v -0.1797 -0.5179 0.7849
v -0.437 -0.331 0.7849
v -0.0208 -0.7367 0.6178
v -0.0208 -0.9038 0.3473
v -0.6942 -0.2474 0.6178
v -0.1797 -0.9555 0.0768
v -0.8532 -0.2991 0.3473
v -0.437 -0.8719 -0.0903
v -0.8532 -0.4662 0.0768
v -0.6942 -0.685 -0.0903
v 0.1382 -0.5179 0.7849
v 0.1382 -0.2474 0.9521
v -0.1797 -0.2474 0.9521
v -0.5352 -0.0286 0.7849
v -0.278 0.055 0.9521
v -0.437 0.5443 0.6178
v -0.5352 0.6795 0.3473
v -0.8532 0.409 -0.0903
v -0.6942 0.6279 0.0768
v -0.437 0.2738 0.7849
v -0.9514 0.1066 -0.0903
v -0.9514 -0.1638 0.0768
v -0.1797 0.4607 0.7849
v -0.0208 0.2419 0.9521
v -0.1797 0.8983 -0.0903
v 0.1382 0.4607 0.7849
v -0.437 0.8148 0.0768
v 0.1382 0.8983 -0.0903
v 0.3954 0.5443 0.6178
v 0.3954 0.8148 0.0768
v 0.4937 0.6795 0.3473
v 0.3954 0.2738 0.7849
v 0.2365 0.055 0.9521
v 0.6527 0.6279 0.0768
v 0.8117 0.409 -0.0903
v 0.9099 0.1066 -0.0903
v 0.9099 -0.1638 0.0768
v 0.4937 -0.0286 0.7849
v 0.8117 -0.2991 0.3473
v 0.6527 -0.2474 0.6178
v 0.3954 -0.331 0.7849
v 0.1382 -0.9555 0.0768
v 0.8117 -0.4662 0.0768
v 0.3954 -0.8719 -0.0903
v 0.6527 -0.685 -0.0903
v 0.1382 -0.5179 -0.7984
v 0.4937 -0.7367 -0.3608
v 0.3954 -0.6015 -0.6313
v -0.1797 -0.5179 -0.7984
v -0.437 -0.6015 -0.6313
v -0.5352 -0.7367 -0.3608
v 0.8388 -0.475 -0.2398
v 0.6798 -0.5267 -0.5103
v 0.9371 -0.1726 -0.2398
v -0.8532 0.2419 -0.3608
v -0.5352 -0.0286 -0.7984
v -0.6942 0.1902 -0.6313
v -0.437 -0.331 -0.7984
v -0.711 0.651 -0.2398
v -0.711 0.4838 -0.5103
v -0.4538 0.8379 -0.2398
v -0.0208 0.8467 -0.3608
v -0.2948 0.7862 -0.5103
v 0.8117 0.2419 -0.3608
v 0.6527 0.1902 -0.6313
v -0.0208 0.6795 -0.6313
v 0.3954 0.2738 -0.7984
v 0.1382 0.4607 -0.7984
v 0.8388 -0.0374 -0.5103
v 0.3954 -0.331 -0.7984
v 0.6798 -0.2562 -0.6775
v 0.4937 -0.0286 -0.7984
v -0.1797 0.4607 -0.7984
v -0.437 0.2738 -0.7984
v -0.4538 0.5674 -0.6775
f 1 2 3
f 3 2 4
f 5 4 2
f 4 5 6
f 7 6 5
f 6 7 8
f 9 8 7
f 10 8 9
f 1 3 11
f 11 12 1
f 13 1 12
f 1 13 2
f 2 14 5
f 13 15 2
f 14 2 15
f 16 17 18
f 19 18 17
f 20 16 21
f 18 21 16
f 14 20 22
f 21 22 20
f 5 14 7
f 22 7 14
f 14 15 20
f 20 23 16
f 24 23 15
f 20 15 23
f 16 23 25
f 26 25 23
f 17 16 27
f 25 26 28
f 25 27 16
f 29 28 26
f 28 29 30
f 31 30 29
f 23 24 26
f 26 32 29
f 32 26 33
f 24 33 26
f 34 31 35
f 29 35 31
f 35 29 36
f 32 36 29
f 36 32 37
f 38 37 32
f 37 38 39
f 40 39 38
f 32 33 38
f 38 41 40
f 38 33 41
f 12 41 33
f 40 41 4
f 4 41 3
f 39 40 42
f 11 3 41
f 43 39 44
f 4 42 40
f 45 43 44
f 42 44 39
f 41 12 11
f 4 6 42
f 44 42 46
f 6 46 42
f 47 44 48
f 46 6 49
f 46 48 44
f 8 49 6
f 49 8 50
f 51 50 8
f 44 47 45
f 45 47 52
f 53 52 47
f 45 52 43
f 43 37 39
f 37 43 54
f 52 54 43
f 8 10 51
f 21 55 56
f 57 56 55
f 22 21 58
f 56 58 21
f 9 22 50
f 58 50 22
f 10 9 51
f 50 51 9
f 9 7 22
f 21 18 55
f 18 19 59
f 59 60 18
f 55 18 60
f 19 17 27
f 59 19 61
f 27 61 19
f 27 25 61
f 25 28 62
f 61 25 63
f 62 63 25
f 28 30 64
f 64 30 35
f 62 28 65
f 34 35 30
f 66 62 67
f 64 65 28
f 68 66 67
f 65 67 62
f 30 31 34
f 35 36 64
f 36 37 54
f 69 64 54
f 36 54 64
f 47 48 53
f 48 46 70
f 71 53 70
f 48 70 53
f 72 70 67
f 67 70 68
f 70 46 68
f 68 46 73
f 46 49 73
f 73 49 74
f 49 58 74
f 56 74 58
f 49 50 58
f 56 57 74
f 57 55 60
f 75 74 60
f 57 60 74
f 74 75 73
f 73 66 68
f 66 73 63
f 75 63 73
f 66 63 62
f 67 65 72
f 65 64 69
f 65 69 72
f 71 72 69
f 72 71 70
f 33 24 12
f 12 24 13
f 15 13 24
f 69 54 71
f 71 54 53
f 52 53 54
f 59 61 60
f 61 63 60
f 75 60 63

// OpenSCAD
polyhedron( points = [[-0.179748564592915, -0.517873536048758, 0.784933491321742], [-0.436981640290552, -0.330982766916571, 0.784933491321742], [-0.535235932110908, -0.0285871503764338, 0.784933491321742], [-0.436981640209096, 0.273808466137235, 0.784933491321742], [-0.179748564548986, 0.460699235171579, 0.784933491321742], [0.138209003003365, 0.460699235143026, 0.784933491321742], [0.395442078629916, 0.27380846606249, 0.784933491321742], [0.493696370477422, -0.0285871504688259, 0.784933491321742], [0.395442078602765, -0.330982766991319, 0.784933491321742], [0.138209002959439, -0.517873536048758, 0.784933491321742], [-0.0207697808084963, -0.736689059961501, 0.617773305746269], [-0.0207697809617327, -0.903849245701737, 0.347302443928122], [0.138209002772778, -0.955504584091393, 0.0768315820280207], [0.395442078440118, -0.871924491571417, -0.0903286036147338], [0.65267515423345, -0.685033722720437, -0.090328603760104], [0.811653938212157, -0.466218199044103, 0.0768315816880096], [0.811653937931289, -0.299058012365131, 0.347302443814096], [0.652675154213117, -0.247402674200623, 0.617773305692182], [-0.179748564826416, -0.955504583983653, 0.0768315821487111], [-0.436981640499478, -0.87192449127138, -0.0903286033890888], [-0.694214716109913, -0.685033722196379, -0.090328603379105], [-0.853193499810638, -0.466218198357744, 0.0768315821748503], [-0.853193499721448, -0.299058012591102, 0.34730244396043], [-0.694214715876411, -0.247402674290035, 0.617773305747732], [-0.951447791429991, -0.163822581303554, 0.0768315818922495], [-0.951447791353071, 0.106648280554912, -0.0903286037063214], [-0.853193499445187, 0.409043897066612, -0.0903286036935523], [-0.694214715672524, 0.627859420779438, 0.0768315819256765], [-0.535235931942756, 0.679514758905819, 0.347302443814096], [-0.43698164015469, 0.544279327976553, 0.617773305692182], [-0.436981640168911, 0.814750189728982, 0.0768315818922495], [-0.179748564716347, 0.898330282423033, -0.0903286037142067], [0.138209003042671, 0.898330282427637, -0.0903286036935523], [0.395442078670106, 0.814750189637522, 0.0768315819256765], [0.493696370519043, 0.679514758753415, 0.347302443814096], [0.395442078637429, 0.544279327892116, 0.617773305692182], [0.652675154167646, 0.627859420679618, 0.0768315818922495], [0.811653937896377, 0.40904389691909, -0.0903286037063214], [0.909908230232101, 0.106648279044918, -0.090328604246827], [0.909908230193612, -0.163822582669512, 0.0768315814765614], [0.493696370331744, -0.736689060803939, -0.360799465503475], [0.395442078424713, -0.601453629927792, -0.631270327353851], [0.138209002868952, -0.517873536852605, -0.798430512972851], [-0.17974856469131, -0.517873536597041, -0.798430512862408], [-0.436981640353175, -0.601453629144161, -0.631270327165366], [-0.535235932249916, -0.736689059925591, -0.360799465248721], [-0.436981639812935, -0.33098276693887, -0.798430512831665], [-0.53523593166627, -0.0285871504094473, -0.798430512864682], [-0.694214715856968, 0.190228373332233, -0.63127032737497], [-0.853193499491352, 0.24188371149902, -0.36079946553577], [-0.436981640396896, 0.273808466044503, -0.798430512960772], [-0.17974856490079, 0.460699235004378, -0.79843051296866], [-0.0207697811720604, 0.679514758656731, -0.631270327395628], [-0.0207697811016099, 0.846674944237093, -0.360799465561302], [0.138209002603864, 0.460699234880336, -0.798430512831665], [0.395442078250799, 0.273808465827853, -0.798430512864682], [0.652675154406585, 0.190228371785916, -0.631270327840577], [0.811653938312927, 0.241883709896463, -0.360799466105098], [0.493696370471814, -0.028587151829945, -0.798430513242495], [0.395442078478215, -0.330982768200593, -0.798430513056582], [-0.179748564295965, -0.247402674029202, 0.952093676677409], [0.13820900294516, -0.247402674148347, 0.952093676852438], [0.236463294797661, 0.0549929423373021, 0.952093676852438], [-0.0207697808006984, 0.241883711385385, 0.952093676852439], [-0.278002856146367, 0.054992942389409, 0.952093676636537], [0.838810756013388, -0.475041984215678, -0.239841219337666], [0.679831972396829, -0.52669732240985, -0.510312080861634], [0.679831972455426, -0.256226460713948, -0.677472266535335], [0.838810756370827, -0.0374109371334107, -0.510312081148425], [0.93706504795536, -0.172646367940021, -0.239841219471685], [-0.710998552099323, 0.650960390113449, -0.23984121886632], [-0.453765476970836, 0.837851159049818, -0.239841218871455], [-0.294786693383709, 0.786195820864185, -0.510312080685597], [-0.453765477098164, 0.567380297240143, -0.677472266229596], [-0.710998552180256, 0.483800204542588, -0.510312080581561]], faces = [[0, 1, 23, 22, 21, 20, 19, 18, 11, 10], [0, 10, 9], [0, 9, 61, 60], [0, 60, 1], [1, 2, 23], [1, 60, 64, 2], [2, 3, 29, 28, 27, 26, 25, 24, 22, 23], [2, 64, 3], [3, 4, 29], [3, 64, 63, 4], [4, 5, 35, 34, 33, 32, 31, 30, 28, 29], [4, 63, 5], [5, 6, 35], [5, 63, 62, 6], [6, 7, 17, 16, 39, 38, 37, 36, 34, 35], [6, 62, 7], [7, 8, 17], [7, 62, 61, 8], [8, 9, 10, 11, 12, 13, 14, 15, 16, 17], [8, 61, 9], [11, 18, 12], [12, 18, 19, 45, 44, 43, 42, 41, 40, 13], [13, 40, 14], [14, 40, 66, 65], [14, 65, 15], [15, 39, 16], [15, 65, 69, 39], [19, 20, 45], [20, 21, 24, 25, 49, 48, 47, 46, 44, 45], [21, 22, 24], [25, 26, 49], [26, 27, 70], [26, 70, 74, 49], [27, 28, 30], [27, 30, 71, 70], [30, 31, 71], [31, 32, 53], [31, 53, 72, 71], [32, 33, 36, 37, 57, 56, 55, 54, 52, 53], [33, 34, 36], [37, 38, 57], [38, 39, 69], [38, 69, 68, 57], [40, 41, 66], [41, 42, 59], [41, 59, 67, 66], [42, 43, 46, 47, 50, 51, 54, 55, 58, 59], [43, 44, 46], [47, 48, 50], [48, 49, 74], [48, 74, 73, 50], [50, 73, 51], [51, 52, 54], [51, 73, 72, 52], [52, 72, 53], [55, 56, 58], [56, 57, 68], [56, 68, 67, 58], [58, 67, 59], [60, 61, 62, 63, 64], [65, 66, 67, 68, 69], [70, 71, 72, 73, 74]]);
